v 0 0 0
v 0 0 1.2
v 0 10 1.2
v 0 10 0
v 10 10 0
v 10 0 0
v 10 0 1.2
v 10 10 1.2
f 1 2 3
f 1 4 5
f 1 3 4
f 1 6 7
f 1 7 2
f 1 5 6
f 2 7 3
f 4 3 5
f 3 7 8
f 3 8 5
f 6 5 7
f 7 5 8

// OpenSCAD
/* Warning, this is a very basic generator with a lot of approximation 
input data : [TQFP, 3GB, 10x10x1.2mm, 44, , A, C04-21019A]
generated by com.zoubworld.electronics.cad.model3d.Basic
Date : Sun Feb 15 10:50:49 CET 2026
*/

//body
color("black")
translate([0,0,0])
cube([10.0,10.0,1.2], center=false);
